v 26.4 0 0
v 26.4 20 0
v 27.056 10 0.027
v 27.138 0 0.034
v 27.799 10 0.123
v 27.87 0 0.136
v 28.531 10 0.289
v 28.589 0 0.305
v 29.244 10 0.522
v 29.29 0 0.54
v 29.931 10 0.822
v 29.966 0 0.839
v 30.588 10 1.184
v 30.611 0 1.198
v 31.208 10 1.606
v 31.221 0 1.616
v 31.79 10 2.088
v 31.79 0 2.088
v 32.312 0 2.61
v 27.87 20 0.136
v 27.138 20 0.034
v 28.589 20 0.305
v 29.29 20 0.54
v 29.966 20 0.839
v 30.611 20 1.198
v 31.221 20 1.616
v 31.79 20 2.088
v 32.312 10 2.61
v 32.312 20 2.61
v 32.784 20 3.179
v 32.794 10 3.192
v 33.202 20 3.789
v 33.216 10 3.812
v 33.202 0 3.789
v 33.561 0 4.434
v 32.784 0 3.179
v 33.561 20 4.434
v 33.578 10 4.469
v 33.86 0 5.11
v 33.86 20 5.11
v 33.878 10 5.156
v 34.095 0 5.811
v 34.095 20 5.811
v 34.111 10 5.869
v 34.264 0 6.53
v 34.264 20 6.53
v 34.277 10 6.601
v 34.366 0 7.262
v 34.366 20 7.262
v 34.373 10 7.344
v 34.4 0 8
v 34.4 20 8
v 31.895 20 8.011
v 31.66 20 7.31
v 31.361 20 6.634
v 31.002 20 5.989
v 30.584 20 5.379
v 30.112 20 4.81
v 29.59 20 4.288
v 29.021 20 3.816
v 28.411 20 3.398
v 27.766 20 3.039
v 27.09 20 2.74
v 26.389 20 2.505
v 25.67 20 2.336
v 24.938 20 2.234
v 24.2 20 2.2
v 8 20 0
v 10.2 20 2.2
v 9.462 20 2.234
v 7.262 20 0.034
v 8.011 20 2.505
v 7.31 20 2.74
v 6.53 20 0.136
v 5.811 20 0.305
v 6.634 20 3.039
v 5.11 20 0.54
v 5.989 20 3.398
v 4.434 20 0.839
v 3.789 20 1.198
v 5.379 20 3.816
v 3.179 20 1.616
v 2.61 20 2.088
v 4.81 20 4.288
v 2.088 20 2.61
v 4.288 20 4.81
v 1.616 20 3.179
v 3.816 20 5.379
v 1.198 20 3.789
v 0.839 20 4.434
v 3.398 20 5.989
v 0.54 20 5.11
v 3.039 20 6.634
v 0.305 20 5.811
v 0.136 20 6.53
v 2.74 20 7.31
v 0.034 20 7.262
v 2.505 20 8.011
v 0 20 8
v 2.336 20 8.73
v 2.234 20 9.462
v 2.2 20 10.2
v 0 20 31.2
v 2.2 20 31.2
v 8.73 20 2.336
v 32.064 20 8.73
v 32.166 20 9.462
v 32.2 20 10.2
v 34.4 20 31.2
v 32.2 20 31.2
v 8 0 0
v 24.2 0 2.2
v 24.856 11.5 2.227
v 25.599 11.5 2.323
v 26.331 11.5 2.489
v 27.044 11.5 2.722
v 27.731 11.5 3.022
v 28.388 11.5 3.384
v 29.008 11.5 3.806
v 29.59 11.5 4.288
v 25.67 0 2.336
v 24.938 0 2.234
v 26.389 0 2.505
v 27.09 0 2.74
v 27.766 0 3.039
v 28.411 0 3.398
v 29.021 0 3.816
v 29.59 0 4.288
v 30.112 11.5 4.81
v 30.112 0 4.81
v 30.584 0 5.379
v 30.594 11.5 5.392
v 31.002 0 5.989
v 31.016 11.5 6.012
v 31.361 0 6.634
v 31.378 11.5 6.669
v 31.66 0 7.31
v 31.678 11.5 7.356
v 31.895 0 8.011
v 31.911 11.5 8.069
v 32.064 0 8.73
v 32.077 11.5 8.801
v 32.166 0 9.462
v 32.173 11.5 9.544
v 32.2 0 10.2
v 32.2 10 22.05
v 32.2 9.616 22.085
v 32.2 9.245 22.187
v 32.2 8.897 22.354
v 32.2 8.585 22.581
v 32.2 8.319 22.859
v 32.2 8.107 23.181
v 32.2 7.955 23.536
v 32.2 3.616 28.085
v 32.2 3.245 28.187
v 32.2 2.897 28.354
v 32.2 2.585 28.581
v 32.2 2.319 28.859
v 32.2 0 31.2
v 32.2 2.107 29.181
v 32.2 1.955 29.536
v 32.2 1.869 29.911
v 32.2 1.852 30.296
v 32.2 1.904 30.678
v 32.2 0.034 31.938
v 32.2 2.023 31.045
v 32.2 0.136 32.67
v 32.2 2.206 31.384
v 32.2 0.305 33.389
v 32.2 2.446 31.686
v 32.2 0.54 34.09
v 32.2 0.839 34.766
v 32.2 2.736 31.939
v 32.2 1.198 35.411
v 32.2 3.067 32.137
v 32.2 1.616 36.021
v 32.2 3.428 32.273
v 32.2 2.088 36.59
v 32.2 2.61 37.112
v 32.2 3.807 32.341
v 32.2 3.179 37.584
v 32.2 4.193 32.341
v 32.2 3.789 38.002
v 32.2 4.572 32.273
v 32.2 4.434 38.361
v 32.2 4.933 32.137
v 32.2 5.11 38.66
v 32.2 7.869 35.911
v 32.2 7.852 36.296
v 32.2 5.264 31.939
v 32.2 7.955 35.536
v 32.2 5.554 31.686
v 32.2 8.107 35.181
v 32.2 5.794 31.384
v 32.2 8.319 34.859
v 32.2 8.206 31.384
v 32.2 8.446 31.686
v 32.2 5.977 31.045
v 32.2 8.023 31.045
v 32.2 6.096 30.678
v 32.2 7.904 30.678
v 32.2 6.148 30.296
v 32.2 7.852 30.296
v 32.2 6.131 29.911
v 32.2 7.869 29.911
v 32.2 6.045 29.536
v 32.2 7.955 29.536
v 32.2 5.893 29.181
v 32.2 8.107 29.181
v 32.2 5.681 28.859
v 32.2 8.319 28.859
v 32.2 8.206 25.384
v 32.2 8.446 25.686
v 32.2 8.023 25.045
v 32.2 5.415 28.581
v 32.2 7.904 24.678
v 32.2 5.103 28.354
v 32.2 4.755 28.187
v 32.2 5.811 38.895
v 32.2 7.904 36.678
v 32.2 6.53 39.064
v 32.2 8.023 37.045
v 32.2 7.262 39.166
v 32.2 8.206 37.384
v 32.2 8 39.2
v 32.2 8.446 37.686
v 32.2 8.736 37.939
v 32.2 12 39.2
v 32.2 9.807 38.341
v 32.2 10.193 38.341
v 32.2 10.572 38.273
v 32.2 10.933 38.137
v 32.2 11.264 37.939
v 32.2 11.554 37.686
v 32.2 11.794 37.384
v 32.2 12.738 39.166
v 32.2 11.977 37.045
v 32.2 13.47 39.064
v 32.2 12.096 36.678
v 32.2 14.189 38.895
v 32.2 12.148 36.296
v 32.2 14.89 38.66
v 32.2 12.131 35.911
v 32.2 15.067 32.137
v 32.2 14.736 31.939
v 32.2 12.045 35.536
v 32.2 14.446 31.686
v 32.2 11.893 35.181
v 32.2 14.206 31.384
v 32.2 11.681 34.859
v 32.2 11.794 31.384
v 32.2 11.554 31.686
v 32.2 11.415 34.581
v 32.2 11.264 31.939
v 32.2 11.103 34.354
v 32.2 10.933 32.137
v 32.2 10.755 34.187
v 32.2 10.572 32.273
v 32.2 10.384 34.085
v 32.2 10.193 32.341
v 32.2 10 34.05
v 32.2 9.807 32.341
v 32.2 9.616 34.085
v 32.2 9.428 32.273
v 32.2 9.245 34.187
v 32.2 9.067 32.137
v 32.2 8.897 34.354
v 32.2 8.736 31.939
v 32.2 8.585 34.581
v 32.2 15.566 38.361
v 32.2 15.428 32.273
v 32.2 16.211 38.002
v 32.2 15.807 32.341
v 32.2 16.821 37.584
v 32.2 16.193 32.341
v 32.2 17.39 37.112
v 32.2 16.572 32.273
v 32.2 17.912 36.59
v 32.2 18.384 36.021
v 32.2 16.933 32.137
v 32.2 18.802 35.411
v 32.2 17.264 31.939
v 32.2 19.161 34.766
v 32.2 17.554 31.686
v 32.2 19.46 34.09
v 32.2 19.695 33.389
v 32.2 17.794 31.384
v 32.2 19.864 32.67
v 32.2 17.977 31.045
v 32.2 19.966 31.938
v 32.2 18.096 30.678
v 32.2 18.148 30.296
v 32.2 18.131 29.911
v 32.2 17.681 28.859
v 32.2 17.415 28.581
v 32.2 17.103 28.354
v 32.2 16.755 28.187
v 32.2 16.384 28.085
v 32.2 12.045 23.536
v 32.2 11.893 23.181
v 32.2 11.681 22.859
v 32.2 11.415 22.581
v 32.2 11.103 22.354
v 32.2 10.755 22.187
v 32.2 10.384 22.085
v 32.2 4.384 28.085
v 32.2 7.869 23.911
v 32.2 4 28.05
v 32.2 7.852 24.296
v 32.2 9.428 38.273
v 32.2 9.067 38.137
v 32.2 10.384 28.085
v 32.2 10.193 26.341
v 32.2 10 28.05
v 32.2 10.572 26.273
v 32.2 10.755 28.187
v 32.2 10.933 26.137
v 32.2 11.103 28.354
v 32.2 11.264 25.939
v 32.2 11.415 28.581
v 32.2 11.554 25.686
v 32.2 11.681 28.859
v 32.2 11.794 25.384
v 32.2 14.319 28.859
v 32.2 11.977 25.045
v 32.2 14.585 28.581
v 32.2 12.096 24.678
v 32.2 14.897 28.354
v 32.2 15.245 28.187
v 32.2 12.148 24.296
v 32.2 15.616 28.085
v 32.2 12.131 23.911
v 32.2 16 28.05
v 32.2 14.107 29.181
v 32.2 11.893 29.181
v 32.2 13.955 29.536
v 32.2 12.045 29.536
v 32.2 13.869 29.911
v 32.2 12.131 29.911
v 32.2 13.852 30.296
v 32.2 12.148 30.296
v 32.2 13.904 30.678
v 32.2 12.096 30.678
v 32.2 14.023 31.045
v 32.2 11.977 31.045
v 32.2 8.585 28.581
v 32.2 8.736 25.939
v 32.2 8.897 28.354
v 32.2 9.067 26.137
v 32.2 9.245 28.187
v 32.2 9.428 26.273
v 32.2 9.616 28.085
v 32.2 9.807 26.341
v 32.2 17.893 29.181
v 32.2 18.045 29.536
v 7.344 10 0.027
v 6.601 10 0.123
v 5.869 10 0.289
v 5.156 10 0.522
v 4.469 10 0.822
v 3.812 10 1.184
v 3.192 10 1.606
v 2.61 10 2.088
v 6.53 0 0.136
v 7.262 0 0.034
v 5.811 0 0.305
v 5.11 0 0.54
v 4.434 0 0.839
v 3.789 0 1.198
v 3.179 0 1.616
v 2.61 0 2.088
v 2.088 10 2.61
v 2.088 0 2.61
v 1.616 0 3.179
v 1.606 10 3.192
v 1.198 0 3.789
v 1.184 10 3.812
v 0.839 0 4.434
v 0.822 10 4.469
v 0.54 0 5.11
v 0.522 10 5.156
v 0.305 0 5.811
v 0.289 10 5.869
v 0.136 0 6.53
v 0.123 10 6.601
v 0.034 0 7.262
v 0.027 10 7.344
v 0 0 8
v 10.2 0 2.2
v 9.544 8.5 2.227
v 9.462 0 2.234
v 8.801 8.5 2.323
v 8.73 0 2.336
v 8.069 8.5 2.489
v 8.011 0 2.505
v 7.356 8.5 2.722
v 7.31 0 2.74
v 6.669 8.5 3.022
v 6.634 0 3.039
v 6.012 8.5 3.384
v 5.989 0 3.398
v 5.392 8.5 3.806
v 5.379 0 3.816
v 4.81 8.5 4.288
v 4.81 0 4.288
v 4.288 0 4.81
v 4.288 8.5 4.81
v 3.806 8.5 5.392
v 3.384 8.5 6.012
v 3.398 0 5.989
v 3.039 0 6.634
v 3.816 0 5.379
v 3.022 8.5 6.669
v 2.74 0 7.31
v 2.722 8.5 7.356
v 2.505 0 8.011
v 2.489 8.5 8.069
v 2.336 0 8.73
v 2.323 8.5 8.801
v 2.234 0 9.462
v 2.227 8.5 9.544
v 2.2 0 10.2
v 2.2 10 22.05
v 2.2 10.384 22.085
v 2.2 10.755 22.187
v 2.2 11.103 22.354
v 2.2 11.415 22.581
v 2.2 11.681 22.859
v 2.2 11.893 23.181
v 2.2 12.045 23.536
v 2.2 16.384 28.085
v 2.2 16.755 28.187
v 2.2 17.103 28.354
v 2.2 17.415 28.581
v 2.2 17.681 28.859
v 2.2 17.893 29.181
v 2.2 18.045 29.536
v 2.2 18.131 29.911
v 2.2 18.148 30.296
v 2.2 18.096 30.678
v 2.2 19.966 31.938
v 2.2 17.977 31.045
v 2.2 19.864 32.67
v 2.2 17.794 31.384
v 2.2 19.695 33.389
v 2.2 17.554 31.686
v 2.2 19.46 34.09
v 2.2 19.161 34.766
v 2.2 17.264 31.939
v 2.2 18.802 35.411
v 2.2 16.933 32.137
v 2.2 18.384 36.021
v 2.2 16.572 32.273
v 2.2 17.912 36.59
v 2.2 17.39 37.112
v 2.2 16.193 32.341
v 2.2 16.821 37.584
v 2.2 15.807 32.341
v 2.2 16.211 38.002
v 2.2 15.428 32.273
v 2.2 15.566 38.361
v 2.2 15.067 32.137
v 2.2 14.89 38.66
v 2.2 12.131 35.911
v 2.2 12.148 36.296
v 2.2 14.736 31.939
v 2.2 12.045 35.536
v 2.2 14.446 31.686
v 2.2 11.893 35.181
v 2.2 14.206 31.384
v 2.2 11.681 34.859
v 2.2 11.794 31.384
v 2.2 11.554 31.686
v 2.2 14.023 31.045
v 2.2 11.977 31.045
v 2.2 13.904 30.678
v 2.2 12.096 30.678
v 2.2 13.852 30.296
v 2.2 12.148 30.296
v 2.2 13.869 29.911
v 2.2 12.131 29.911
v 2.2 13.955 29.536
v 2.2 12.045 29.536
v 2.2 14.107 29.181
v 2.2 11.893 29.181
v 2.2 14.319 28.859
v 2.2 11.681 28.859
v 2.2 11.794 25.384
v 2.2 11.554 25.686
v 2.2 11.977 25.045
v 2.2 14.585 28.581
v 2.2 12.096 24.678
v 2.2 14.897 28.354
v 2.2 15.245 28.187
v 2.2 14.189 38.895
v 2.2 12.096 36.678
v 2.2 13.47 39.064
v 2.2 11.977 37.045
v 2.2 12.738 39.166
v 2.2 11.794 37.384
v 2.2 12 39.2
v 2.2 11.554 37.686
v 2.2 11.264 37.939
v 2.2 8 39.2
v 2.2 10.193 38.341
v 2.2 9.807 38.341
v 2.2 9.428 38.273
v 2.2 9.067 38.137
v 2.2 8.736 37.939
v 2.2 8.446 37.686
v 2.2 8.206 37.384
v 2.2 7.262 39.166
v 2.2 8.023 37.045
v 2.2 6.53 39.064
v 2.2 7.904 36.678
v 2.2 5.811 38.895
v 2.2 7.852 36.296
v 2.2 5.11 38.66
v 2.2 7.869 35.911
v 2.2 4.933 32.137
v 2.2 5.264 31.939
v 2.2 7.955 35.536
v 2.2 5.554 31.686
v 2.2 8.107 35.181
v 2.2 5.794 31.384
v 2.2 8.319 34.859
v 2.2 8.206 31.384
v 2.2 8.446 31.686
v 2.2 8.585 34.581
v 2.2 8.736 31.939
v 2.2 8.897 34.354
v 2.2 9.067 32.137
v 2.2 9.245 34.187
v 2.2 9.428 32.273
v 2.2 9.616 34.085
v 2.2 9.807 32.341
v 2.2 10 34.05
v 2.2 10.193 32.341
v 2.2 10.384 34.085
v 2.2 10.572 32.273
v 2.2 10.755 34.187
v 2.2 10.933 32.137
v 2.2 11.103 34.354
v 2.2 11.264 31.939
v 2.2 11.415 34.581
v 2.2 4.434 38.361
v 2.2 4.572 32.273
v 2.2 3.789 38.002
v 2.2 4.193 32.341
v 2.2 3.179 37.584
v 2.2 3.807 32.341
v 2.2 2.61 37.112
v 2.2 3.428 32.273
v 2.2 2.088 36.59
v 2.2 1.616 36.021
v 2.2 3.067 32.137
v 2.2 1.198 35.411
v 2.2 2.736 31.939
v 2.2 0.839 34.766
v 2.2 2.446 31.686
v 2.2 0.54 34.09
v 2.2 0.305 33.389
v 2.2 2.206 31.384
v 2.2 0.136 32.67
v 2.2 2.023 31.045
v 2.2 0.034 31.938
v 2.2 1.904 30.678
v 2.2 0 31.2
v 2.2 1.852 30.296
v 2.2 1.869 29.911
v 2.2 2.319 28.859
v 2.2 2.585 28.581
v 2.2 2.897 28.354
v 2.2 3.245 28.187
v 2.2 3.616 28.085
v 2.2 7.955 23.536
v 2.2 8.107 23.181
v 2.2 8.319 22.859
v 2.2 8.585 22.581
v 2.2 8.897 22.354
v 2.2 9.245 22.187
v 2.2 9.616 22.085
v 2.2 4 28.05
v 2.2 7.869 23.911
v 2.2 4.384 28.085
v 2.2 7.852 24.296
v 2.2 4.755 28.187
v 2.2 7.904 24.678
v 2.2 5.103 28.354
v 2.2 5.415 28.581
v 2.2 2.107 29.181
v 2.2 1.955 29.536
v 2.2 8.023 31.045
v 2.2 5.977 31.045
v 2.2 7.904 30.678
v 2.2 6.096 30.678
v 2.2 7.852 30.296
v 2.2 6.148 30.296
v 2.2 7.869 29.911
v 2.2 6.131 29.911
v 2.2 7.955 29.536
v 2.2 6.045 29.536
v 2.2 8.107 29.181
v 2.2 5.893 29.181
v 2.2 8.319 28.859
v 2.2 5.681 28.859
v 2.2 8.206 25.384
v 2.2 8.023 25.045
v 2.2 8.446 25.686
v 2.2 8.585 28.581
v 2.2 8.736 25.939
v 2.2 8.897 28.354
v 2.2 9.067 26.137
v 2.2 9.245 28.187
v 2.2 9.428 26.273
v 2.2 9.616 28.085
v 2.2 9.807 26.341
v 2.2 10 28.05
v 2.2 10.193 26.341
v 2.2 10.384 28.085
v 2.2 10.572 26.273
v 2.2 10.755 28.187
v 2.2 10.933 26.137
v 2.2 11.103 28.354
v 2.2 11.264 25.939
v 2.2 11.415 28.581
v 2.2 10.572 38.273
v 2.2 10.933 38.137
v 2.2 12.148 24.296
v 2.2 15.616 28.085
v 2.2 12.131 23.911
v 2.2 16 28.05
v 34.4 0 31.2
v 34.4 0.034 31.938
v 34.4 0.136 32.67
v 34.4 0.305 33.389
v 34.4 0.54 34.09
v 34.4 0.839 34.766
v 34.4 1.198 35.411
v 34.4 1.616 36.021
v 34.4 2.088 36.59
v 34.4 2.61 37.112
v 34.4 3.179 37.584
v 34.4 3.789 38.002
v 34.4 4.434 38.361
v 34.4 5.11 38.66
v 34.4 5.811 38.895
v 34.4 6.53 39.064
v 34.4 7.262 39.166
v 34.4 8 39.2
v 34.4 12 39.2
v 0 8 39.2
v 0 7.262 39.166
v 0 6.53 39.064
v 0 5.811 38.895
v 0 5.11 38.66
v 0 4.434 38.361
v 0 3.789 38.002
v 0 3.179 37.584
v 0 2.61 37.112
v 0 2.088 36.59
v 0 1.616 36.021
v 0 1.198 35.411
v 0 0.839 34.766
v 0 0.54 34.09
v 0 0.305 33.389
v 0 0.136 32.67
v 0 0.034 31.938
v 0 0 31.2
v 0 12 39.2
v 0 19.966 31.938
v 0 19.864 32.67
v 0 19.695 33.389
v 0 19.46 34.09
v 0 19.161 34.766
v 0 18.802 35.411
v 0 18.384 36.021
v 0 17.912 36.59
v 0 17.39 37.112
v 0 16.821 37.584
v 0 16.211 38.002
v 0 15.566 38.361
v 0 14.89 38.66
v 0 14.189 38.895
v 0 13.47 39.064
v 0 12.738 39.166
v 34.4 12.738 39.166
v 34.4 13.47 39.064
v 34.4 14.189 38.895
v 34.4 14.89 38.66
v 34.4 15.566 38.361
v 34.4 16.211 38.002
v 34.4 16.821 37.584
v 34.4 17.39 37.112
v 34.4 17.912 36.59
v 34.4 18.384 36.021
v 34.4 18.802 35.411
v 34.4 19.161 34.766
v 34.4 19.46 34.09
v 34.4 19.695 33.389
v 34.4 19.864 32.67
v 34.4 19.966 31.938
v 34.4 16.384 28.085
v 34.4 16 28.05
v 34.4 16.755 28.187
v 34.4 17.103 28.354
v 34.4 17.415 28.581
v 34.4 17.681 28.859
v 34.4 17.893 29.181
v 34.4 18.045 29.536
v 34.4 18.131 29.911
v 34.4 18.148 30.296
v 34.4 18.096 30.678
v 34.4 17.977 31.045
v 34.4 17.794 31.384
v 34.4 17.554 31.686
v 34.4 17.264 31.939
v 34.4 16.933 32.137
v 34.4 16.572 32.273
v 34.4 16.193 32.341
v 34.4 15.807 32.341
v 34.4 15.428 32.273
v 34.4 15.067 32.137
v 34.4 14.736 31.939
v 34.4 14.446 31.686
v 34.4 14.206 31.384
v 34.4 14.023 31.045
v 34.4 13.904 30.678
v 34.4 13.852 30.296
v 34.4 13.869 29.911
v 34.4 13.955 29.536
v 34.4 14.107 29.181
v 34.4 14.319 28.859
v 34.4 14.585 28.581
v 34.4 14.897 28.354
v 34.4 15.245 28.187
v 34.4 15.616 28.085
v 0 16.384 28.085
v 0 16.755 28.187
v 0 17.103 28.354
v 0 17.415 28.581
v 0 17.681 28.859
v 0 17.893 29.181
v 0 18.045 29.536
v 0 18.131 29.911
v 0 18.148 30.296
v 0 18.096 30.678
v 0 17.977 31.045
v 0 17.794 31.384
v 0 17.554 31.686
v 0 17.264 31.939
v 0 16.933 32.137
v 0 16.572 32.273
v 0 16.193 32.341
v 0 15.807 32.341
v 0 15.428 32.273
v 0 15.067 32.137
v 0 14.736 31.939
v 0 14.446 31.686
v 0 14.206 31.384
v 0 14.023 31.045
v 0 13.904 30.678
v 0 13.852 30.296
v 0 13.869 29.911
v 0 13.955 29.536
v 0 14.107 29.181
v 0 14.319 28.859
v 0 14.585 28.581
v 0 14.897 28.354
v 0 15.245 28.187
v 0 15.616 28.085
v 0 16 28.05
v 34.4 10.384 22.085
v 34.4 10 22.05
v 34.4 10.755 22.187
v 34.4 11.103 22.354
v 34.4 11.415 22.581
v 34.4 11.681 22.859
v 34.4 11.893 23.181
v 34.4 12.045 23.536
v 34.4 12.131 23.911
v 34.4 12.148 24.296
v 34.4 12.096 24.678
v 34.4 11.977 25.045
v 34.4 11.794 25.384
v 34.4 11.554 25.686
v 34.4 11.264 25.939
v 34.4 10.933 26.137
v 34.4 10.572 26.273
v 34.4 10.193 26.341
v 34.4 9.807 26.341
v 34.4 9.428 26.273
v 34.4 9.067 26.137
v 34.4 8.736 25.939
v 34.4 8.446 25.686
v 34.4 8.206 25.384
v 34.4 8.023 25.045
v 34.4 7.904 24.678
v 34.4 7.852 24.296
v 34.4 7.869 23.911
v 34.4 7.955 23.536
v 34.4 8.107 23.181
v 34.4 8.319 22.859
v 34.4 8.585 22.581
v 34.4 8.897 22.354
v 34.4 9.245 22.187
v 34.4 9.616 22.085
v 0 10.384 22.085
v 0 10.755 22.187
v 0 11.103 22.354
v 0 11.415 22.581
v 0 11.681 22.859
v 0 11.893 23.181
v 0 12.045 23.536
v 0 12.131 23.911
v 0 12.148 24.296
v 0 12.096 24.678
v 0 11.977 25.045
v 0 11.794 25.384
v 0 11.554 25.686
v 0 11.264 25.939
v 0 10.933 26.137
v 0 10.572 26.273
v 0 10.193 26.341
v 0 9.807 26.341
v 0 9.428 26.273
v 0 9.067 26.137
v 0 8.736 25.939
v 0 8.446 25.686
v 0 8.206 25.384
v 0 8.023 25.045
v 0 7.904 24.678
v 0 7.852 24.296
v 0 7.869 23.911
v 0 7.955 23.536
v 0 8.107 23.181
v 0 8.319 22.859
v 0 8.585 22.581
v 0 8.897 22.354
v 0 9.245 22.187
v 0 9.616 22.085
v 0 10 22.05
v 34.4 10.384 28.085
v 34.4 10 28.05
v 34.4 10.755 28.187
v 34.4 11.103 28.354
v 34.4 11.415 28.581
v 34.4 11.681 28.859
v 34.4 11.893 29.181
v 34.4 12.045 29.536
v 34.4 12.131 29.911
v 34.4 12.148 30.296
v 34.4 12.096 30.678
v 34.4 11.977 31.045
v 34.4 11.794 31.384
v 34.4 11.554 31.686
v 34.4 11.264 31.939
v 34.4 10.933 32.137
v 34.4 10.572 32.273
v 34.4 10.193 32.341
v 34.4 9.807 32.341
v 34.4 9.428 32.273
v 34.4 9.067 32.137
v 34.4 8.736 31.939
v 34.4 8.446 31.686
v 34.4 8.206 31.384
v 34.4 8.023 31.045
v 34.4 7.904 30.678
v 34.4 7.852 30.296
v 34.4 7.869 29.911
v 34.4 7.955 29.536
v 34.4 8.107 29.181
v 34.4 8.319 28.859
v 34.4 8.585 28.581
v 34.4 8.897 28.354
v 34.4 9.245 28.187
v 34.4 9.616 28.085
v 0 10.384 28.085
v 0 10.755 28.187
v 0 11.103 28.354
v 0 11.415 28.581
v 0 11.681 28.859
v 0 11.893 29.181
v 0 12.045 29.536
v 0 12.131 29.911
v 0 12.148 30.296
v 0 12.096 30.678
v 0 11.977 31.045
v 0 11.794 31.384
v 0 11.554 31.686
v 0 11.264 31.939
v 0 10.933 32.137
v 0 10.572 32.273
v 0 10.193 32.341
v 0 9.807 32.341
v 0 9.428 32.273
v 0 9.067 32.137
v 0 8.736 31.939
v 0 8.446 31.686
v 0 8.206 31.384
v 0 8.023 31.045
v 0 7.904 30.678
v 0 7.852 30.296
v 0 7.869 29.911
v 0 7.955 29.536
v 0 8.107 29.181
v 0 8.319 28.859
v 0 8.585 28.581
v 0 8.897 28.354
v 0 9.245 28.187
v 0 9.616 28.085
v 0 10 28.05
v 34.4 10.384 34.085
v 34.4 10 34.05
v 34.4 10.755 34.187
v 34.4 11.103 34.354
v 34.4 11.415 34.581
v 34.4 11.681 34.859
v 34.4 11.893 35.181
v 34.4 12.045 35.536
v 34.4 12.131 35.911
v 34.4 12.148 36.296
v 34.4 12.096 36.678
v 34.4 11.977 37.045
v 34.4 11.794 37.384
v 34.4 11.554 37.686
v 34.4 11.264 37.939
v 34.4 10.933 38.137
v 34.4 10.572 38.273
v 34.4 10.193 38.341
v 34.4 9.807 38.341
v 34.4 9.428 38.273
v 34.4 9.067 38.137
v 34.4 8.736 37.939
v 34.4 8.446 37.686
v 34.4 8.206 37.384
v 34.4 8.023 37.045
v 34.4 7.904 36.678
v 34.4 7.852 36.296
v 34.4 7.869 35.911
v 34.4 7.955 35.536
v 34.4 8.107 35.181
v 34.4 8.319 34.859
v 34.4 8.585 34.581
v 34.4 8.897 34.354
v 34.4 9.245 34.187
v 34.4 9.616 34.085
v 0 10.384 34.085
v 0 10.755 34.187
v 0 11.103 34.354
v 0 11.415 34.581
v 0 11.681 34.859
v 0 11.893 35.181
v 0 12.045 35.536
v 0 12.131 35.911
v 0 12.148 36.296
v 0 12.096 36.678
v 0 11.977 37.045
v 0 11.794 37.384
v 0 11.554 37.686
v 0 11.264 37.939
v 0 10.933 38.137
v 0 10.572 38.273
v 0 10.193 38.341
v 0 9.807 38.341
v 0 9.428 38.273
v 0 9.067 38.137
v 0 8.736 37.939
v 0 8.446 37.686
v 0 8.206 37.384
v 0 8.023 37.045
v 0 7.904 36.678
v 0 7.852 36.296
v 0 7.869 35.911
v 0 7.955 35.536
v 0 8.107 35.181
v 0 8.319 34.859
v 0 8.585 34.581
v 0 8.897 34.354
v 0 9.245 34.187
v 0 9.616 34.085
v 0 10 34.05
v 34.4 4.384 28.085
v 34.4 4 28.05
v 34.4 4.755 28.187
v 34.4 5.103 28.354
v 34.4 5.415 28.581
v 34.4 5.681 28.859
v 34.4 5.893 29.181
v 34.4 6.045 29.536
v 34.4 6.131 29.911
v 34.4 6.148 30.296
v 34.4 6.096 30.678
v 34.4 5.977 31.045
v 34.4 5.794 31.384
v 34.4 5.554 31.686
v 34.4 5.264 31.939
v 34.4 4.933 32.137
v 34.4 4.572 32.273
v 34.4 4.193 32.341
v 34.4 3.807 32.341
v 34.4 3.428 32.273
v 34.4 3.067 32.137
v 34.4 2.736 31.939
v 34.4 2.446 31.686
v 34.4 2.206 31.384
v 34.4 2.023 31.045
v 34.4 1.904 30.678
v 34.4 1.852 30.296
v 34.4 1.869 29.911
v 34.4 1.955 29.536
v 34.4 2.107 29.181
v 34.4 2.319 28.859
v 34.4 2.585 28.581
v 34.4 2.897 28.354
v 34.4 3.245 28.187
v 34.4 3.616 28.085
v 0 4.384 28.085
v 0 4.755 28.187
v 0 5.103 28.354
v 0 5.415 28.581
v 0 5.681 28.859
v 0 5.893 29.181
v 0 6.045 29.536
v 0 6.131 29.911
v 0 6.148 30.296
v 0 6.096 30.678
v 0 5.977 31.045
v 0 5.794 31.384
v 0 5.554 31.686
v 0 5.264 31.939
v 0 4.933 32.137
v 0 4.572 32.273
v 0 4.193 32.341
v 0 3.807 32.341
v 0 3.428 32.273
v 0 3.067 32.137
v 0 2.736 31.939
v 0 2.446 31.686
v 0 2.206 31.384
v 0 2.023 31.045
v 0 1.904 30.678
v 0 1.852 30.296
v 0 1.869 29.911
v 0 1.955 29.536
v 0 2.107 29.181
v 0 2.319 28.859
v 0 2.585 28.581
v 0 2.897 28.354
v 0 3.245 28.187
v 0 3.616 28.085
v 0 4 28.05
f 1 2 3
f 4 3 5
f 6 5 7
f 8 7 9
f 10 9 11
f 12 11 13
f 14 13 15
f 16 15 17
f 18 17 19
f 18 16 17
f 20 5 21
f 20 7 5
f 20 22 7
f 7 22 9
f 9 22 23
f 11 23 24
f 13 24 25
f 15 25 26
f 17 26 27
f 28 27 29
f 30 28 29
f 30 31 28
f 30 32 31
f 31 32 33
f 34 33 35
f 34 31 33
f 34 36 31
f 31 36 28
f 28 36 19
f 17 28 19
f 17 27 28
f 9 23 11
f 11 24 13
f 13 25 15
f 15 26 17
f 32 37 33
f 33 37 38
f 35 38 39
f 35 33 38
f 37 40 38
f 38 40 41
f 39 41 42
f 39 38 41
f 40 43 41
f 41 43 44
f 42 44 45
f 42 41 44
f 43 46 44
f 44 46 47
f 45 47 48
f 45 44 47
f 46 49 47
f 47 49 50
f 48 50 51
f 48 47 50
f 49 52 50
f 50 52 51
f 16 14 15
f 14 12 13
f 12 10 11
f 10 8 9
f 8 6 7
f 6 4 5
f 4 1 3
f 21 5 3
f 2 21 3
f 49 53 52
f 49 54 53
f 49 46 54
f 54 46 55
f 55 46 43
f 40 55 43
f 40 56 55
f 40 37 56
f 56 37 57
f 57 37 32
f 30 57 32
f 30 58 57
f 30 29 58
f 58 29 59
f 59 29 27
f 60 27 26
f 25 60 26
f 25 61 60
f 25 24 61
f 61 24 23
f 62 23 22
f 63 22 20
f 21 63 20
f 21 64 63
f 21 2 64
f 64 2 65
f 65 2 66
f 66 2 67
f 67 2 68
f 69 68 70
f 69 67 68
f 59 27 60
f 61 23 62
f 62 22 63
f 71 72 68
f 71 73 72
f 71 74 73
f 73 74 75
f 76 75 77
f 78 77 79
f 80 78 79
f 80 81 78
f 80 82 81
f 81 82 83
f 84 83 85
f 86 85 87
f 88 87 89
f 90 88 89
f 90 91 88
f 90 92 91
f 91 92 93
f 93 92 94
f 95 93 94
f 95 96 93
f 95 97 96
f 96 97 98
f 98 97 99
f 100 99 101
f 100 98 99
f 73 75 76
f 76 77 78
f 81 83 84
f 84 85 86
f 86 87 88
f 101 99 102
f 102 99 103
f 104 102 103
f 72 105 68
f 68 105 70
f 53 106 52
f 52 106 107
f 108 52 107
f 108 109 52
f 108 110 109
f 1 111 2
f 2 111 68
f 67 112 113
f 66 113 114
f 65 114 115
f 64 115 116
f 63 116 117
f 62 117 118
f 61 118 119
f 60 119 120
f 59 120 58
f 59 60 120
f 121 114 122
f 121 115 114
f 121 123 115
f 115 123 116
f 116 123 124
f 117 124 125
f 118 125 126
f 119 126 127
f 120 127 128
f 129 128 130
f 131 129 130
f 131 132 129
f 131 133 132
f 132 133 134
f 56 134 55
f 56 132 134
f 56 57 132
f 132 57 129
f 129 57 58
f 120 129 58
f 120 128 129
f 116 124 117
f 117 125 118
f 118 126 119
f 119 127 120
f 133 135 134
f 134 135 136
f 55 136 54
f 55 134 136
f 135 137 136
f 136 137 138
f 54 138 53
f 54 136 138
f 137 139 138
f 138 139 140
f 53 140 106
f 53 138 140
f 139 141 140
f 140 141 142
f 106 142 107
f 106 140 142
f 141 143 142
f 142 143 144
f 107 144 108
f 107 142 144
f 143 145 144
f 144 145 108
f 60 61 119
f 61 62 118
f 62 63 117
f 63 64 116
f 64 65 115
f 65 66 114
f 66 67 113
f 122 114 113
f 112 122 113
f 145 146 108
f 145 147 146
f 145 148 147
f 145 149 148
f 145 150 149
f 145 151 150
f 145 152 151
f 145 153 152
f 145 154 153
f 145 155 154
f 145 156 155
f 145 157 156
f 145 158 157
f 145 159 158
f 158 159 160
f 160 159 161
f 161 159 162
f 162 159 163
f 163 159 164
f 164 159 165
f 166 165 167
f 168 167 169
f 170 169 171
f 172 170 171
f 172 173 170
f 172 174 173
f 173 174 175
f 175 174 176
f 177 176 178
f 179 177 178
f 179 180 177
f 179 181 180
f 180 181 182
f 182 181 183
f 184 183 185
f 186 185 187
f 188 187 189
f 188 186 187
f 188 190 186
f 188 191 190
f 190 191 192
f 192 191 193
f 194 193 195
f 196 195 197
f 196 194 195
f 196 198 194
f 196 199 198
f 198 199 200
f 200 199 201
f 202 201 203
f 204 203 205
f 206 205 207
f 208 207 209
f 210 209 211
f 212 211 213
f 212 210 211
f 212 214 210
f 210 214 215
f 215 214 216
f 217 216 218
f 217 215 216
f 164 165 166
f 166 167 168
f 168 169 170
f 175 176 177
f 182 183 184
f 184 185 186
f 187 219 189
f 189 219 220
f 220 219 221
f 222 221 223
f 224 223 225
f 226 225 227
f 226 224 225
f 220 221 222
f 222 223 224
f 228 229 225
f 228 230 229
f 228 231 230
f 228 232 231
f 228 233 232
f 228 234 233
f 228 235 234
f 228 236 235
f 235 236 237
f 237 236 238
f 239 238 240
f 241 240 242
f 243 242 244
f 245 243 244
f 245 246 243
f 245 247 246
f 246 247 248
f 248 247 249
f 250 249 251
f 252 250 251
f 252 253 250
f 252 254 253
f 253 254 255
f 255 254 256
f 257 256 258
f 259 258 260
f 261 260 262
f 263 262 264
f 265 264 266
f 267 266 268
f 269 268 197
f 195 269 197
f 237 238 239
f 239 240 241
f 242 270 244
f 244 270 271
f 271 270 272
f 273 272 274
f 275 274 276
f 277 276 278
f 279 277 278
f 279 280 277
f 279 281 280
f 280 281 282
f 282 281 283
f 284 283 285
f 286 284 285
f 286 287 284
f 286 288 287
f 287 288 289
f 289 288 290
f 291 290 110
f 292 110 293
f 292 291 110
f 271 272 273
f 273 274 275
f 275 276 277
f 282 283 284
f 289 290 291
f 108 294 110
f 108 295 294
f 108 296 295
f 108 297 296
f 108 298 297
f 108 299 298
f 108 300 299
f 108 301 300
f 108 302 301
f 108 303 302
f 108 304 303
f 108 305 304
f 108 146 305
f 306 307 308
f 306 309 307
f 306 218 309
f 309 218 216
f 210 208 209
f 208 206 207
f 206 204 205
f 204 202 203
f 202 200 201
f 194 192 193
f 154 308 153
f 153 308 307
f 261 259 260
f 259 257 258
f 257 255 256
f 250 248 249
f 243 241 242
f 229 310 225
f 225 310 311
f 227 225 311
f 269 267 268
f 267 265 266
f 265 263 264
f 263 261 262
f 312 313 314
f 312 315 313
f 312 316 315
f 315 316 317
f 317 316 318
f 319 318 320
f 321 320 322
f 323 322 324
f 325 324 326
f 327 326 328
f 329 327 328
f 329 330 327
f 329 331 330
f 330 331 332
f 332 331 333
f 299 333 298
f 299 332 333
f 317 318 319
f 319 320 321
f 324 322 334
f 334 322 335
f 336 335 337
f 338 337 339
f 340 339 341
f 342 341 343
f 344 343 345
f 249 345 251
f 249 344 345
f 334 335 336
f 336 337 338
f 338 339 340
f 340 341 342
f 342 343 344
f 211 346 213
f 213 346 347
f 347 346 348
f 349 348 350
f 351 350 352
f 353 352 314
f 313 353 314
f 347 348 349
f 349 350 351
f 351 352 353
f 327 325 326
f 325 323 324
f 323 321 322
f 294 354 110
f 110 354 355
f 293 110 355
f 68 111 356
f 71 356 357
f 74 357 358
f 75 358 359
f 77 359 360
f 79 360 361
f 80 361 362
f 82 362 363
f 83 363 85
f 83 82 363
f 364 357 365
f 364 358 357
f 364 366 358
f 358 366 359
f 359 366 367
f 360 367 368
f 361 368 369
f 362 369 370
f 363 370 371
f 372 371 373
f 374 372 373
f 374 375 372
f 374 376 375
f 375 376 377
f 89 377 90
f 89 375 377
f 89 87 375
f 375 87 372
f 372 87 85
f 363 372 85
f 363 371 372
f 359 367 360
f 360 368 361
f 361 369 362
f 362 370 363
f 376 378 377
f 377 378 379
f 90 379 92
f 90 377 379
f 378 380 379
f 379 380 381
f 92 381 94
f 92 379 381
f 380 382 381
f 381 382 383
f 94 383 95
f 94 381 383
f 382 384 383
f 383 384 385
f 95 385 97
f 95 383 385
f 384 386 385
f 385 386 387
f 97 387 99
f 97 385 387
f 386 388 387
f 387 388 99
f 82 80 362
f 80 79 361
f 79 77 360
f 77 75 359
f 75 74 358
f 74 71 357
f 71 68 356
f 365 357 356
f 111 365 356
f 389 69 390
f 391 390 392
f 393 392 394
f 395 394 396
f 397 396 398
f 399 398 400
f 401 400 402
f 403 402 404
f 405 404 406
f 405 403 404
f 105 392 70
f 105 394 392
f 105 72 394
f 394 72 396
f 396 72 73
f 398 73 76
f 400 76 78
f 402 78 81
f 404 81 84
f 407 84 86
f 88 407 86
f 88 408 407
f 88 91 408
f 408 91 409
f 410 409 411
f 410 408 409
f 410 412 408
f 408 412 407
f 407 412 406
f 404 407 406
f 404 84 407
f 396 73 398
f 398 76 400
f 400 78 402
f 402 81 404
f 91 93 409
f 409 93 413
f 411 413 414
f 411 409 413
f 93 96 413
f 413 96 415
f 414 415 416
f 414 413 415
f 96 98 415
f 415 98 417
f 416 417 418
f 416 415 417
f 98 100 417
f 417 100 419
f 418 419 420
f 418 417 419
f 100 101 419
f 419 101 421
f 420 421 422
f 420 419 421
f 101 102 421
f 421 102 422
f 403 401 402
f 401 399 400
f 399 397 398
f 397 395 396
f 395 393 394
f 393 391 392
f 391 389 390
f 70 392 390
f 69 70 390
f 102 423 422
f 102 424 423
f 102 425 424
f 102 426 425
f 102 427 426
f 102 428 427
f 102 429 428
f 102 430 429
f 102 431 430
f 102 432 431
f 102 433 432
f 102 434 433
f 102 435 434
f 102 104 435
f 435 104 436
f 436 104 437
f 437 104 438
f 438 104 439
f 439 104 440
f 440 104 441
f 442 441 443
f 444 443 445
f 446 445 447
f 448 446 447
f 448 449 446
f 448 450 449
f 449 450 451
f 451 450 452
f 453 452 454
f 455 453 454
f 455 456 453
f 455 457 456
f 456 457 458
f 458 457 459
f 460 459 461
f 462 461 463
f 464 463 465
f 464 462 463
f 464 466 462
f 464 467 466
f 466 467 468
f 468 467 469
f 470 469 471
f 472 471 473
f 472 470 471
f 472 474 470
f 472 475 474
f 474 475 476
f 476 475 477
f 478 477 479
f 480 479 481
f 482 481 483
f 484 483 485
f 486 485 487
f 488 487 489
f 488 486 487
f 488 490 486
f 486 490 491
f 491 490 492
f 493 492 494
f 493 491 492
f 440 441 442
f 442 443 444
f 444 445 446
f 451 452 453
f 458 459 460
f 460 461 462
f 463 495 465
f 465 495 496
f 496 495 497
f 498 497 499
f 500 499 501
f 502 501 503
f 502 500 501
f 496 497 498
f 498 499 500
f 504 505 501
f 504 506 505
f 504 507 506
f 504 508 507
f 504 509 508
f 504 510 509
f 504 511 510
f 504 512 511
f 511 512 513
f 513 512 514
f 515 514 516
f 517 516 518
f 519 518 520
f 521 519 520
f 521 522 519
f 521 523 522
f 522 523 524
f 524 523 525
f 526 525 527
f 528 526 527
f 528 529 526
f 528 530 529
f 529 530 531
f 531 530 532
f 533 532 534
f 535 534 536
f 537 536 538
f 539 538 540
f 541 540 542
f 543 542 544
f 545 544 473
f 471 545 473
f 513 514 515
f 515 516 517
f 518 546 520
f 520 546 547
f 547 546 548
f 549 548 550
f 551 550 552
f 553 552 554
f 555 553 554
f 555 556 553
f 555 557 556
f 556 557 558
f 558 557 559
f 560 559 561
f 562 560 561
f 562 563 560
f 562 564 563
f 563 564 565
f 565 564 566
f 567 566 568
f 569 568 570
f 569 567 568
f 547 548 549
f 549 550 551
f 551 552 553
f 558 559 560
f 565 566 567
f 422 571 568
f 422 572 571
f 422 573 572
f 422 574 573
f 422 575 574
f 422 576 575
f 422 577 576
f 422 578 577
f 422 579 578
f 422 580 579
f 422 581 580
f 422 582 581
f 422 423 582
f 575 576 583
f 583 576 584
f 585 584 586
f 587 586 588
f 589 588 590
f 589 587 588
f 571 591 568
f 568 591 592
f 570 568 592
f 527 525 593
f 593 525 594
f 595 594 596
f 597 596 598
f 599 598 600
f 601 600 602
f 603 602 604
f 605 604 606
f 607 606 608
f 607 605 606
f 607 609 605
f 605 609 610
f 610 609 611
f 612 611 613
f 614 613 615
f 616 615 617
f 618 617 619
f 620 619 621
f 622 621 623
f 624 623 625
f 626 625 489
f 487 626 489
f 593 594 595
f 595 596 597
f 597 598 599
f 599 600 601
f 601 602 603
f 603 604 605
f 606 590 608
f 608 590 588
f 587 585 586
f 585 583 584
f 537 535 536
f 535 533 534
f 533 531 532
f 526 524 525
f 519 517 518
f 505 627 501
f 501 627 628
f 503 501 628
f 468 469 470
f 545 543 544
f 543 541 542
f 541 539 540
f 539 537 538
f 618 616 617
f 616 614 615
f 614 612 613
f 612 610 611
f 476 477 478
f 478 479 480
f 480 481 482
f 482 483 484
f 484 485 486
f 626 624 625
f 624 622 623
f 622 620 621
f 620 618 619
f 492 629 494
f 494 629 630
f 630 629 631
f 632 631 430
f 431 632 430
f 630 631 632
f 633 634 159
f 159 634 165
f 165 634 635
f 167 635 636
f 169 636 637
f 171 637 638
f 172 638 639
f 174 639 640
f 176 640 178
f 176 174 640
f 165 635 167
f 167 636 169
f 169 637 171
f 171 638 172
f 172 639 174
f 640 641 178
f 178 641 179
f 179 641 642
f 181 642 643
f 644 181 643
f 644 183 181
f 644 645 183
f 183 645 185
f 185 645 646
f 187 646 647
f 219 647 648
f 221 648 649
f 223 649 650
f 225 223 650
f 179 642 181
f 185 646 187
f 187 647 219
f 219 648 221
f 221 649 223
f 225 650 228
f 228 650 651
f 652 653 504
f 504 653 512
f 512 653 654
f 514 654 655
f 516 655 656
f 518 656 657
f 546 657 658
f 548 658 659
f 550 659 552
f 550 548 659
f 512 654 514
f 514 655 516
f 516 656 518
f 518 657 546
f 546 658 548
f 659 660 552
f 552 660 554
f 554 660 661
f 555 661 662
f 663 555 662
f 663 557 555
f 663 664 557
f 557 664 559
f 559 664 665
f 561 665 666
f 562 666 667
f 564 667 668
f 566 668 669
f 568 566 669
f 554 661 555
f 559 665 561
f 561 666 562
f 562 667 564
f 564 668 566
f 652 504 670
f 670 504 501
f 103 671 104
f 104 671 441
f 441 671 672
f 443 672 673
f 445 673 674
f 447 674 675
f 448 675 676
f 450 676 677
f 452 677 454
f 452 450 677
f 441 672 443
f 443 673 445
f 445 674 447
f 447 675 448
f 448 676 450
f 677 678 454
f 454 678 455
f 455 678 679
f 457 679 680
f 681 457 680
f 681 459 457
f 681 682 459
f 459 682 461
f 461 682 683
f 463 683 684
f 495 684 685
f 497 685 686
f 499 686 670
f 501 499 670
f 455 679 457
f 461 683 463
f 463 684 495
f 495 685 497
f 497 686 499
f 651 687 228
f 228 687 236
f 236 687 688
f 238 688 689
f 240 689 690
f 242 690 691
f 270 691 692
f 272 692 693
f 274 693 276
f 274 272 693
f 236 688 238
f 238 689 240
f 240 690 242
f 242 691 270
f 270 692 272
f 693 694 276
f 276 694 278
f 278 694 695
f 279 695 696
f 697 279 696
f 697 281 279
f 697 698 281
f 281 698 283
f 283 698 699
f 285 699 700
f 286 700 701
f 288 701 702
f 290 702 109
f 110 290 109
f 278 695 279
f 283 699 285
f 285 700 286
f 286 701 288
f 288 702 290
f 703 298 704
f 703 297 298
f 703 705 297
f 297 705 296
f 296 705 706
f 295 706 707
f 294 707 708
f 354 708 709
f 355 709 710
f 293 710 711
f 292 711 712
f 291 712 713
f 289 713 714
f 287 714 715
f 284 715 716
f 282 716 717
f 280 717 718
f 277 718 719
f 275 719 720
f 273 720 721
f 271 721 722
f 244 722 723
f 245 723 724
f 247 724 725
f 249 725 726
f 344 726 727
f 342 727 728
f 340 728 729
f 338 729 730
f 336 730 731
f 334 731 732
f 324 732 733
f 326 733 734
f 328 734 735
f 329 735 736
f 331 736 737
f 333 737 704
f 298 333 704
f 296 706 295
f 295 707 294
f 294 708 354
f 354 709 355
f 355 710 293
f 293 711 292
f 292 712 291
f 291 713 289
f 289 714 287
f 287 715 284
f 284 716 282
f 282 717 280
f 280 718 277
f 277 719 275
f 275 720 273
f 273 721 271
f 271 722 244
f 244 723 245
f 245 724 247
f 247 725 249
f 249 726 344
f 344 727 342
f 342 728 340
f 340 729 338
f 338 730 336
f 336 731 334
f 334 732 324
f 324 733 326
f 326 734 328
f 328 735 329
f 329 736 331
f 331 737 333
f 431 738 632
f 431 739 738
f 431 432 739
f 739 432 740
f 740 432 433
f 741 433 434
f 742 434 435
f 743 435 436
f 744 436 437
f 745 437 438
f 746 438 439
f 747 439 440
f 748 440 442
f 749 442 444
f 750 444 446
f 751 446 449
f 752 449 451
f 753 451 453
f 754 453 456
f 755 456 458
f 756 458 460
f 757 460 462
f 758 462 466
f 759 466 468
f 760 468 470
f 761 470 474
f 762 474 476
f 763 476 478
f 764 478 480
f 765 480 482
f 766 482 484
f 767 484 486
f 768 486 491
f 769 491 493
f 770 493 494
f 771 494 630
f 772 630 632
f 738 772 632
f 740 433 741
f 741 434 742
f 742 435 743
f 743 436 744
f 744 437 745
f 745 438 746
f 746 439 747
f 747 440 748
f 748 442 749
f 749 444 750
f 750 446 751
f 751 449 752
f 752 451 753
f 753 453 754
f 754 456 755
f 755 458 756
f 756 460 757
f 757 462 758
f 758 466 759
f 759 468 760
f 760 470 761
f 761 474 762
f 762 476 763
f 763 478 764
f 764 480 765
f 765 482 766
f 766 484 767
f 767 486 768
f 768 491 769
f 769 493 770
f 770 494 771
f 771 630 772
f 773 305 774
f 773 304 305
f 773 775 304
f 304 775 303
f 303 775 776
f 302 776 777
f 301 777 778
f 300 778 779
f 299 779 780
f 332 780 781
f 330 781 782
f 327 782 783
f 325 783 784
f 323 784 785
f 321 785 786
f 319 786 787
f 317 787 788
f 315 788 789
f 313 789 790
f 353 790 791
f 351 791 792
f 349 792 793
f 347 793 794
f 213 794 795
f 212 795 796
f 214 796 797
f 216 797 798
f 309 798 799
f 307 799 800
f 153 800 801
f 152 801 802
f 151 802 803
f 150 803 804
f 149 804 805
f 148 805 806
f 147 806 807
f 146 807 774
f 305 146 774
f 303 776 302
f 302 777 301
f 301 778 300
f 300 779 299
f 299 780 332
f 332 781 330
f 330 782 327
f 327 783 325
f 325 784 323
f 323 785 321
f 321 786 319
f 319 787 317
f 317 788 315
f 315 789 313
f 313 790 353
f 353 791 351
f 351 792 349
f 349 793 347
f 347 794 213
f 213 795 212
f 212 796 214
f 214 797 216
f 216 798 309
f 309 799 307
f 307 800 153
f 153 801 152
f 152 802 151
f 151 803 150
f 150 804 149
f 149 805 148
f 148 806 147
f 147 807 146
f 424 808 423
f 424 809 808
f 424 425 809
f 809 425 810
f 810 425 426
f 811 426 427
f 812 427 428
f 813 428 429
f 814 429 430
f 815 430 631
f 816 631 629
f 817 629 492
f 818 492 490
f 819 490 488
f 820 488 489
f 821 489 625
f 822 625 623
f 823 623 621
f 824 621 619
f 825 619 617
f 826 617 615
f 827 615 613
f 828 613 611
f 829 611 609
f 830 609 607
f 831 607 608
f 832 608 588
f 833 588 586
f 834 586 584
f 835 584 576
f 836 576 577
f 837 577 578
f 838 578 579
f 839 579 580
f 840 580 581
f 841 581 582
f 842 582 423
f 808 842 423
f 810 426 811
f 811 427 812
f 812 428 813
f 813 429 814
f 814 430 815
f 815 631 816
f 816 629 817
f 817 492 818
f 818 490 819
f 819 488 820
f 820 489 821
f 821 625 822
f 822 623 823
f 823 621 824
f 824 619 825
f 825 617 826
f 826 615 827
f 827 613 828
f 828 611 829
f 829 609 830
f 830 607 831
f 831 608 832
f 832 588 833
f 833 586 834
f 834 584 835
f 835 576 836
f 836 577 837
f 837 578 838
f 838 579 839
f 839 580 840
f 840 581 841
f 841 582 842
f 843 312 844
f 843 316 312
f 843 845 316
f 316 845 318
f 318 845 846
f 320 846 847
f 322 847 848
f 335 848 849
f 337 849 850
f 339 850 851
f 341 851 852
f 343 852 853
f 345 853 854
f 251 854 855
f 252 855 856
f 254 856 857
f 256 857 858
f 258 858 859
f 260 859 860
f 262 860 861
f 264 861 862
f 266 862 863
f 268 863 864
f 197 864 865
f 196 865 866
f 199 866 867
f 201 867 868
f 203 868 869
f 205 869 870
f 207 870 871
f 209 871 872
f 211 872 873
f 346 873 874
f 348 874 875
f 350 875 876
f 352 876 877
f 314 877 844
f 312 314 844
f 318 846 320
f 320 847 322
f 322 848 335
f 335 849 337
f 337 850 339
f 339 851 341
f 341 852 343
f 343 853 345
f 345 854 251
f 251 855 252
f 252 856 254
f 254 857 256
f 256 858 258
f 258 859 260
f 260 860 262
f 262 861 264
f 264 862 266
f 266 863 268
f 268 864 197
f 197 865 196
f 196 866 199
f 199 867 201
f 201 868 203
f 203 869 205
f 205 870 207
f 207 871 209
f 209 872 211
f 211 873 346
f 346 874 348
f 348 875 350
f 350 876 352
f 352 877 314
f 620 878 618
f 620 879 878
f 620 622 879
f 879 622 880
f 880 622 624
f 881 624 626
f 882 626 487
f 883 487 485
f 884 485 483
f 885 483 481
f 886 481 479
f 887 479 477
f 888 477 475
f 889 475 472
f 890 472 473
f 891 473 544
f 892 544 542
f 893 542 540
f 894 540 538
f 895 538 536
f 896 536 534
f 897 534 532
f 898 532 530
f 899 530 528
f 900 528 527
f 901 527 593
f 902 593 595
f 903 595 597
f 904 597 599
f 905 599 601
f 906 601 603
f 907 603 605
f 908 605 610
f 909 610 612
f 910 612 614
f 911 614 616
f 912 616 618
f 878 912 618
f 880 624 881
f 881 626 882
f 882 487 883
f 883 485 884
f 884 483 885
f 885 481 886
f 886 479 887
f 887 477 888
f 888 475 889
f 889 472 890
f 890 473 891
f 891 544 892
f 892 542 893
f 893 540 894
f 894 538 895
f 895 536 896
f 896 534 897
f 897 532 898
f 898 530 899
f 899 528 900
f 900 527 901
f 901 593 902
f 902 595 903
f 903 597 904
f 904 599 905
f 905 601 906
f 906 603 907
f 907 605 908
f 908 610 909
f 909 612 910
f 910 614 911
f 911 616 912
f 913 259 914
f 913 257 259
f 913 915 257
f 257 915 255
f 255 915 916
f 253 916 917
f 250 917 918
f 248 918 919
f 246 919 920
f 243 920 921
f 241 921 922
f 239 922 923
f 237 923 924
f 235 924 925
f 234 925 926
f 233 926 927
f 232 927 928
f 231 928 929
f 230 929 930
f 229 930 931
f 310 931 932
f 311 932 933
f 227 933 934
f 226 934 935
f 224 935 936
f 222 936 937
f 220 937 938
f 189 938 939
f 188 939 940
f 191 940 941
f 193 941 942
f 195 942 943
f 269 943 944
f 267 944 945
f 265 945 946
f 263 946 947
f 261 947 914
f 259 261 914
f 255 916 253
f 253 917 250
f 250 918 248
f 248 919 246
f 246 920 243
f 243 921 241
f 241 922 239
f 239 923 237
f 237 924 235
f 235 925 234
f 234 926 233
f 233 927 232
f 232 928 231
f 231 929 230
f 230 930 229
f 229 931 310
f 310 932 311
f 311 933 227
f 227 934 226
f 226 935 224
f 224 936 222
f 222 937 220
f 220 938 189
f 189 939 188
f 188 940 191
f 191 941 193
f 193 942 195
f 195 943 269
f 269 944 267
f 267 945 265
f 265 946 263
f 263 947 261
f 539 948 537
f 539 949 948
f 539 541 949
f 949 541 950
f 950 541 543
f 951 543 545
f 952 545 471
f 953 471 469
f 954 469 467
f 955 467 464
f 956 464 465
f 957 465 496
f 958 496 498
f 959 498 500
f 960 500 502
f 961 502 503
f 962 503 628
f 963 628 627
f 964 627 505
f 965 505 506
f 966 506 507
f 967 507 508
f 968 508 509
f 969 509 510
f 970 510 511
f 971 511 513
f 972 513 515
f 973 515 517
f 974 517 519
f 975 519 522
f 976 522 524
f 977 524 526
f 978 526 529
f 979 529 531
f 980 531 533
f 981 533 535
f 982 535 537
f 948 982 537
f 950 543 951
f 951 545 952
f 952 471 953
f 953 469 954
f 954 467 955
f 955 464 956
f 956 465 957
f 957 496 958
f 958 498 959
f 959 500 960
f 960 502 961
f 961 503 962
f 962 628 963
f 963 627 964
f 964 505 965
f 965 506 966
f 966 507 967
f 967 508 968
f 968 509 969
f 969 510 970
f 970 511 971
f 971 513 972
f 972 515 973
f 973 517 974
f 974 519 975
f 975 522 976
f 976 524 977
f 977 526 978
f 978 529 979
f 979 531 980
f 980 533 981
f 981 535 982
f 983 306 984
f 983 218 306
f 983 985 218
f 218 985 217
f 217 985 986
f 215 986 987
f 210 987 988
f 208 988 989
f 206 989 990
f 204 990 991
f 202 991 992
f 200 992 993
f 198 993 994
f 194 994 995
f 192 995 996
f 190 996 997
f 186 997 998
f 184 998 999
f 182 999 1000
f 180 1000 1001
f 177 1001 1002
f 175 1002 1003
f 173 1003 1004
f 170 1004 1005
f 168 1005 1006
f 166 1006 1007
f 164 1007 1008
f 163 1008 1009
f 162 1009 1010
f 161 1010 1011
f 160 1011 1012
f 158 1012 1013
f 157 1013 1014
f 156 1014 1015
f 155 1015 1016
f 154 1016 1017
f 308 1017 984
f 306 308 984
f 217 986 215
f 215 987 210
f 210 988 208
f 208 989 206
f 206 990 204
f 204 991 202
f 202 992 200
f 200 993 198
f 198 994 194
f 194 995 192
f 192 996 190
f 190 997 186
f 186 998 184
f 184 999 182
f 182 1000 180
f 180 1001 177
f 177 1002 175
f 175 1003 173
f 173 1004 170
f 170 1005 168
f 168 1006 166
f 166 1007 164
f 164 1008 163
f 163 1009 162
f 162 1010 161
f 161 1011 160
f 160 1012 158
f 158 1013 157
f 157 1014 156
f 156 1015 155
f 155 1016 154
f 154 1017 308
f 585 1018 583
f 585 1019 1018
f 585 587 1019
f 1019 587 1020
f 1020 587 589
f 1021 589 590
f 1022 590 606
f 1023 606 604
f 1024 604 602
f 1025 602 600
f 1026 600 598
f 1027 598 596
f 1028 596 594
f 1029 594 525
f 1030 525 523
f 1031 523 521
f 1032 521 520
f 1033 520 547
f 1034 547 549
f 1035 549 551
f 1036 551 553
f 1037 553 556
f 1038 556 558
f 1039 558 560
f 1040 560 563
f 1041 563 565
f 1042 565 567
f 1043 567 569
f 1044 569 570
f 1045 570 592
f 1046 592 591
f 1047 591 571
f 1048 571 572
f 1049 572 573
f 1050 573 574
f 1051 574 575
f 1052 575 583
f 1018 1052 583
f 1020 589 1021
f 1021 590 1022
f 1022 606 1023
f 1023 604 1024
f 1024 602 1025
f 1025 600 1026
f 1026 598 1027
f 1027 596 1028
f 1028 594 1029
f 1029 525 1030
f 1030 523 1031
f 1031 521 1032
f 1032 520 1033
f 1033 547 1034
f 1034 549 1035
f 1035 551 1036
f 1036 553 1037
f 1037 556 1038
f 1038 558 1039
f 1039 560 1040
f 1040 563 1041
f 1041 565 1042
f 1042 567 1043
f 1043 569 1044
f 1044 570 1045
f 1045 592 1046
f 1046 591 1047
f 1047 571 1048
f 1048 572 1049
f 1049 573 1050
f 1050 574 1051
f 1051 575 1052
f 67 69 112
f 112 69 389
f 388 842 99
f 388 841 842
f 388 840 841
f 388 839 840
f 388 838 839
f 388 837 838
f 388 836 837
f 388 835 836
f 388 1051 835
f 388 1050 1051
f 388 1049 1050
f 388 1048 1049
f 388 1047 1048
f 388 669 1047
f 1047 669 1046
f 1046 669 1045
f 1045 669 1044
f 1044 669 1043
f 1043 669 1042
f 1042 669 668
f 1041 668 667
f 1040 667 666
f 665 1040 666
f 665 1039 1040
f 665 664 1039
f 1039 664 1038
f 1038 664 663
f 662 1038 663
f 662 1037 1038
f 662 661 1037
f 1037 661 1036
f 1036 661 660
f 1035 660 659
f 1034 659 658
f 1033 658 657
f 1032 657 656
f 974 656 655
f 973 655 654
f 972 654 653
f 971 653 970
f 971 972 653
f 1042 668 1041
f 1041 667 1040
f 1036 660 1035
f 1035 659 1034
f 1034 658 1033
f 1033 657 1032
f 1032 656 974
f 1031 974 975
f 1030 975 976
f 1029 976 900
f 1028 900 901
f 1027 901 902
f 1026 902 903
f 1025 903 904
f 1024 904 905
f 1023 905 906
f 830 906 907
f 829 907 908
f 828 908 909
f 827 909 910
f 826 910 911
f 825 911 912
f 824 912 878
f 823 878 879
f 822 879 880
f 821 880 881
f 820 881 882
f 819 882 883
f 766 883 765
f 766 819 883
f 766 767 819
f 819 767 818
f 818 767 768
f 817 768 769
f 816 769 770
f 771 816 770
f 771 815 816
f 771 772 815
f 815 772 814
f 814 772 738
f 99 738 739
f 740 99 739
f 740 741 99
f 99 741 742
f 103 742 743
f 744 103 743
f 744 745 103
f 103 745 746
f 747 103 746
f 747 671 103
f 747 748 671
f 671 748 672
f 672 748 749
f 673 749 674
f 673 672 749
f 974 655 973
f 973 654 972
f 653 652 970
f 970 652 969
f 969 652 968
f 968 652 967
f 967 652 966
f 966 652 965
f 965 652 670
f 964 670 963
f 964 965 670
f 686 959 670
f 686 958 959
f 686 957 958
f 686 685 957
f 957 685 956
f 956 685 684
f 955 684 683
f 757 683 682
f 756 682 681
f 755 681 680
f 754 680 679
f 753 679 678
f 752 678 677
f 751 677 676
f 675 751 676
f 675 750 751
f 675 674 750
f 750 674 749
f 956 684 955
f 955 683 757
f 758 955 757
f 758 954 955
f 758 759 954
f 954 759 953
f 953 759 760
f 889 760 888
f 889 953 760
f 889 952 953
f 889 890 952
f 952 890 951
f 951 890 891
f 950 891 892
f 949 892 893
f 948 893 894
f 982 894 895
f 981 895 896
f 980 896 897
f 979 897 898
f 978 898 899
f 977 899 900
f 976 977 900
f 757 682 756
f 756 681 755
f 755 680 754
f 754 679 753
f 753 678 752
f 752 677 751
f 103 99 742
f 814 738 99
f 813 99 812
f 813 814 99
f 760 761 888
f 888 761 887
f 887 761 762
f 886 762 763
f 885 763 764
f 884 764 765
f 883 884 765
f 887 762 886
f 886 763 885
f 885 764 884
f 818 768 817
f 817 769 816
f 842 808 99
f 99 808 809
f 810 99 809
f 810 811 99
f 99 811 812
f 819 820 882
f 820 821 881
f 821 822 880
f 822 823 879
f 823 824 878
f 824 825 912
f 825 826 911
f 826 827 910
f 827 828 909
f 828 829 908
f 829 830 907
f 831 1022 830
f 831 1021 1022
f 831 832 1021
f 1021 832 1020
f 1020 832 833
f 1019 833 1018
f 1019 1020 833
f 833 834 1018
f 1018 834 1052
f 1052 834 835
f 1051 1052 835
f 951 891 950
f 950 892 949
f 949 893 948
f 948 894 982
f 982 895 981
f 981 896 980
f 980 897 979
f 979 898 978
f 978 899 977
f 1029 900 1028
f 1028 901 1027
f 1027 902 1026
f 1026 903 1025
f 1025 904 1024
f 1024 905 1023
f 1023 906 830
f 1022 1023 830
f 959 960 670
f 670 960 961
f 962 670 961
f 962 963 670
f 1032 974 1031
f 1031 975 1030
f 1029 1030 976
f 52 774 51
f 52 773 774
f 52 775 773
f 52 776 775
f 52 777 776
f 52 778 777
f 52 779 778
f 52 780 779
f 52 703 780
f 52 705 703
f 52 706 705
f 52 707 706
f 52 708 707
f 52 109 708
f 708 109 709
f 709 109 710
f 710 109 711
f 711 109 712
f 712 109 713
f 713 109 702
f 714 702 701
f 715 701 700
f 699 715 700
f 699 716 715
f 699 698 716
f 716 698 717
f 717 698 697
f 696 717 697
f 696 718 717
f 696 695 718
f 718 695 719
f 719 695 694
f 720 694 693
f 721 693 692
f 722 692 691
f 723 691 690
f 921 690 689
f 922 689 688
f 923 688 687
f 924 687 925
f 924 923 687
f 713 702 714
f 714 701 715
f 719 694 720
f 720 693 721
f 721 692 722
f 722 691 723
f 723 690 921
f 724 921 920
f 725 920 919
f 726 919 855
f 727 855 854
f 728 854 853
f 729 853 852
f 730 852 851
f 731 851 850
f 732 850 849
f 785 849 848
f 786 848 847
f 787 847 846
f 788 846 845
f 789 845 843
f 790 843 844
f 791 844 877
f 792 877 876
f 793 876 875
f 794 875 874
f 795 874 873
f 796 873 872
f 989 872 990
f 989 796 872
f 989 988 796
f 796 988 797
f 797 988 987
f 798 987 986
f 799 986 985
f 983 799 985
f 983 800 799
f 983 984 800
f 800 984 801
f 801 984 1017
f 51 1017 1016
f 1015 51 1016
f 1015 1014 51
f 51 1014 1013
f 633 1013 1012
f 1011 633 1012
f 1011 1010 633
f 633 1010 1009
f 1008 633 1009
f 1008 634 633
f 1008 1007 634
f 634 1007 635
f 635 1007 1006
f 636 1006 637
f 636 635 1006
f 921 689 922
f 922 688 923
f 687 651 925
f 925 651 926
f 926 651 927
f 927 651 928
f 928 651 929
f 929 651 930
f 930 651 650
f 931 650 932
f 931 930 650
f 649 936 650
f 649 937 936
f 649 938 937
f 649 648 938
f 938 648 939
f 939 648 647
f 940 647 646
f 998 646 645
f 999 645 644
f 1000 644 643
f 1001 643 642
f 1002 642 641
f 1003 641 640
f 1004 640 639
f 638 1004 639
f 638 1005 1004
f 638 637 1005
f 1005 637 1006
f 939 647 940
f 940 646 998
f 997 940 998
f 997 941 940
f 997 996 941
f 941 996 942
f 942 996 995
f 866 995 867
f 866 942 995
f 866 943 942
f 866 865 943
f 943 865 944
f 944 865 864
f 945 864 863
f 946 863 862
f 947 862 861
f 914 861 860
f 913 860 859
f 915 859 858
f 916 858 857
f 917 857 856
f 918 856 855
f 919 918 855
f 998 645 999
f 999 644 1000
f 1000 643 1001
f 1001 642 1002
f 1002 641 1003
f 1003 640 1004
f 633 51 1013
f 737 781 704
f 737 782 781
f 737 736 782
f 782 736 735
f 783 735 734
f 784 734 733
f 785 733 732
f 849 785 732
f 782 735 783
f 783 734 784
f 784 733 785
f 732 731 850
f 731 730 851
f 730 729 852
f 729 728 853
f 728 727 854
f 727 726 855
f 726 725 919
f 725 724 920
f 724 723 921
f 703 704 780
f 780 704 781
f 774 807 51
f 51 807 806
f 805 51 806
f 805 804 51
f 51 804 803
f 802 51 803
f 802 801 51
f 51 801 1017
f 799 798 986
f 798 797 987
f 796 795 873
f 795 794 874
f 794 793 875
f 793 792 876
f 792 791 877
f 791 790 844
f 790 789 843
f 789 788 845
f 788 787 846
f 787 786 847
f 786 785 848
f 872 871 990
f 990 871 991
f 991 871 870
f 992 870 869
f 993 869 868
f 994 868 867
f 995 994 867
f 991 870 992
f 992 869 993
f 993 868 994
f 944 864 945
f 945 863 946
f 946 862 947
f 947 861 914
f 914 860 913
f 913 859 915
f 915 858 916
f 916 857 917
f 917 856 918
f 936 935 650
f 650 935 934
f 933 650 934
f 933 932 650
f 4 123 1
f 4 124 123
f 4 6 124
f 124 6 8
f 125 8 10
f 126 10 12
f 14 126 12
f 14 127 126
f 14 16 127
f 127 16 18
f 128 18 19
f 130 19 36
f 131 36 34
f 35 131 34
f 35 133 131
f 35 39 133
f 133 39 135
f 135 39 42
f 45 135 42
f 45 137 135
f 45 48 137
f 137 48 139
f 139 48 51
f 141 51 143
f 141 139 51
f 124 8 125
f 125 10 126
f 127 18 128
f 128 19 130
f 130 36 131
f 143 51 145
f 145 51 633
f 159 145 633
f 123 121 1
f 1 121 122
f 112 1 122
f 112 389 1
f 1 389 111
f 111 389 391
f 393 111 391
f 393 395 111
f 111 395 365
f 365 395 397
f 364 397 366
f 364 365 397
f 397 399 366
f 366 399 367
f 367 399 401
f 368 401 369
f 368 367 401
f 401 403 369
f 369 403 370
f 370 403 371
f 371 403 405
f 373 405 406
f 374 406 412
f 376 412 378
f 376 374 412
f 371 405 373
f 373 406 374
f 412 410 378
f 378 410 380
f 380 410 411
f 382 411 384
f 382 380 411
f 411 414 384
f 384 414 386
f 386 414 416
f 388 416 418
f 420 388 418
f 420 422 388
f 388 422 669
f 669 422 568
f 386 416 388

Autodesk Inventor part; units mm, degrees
ref_plane "YZ Plane" through (0, 0, 0) normal (1, 0, 0) x (0, 1, 0)
ref_plane "XZ Plane" through (0, 0, 0) normal (0, 1, 0) x (-1, 0, 0)
ref_plane "XY Plane" through (0, 0, 0) normal (0, 0, 1) x (1, 0, 0)
sketch "Esquisse1" plane through (0, 0, 0) normal (0, 0, 1) x (1, 0, 0)
  line L0 (0, 0) -> (34.4, 0)
  line L1 (34.4, 0) -> (34.4, 20)
  line L2 (34.4, 20) -> (0, 20)
  line L3 (0, 20) -> (0, 0)
  dimension "d0" = 34.4
  dimension "d1" = 20
extrude "Extrusion1" add sketch "Esquisse1" along normal blind 2.2
sketch "Esquisse2" plane through (0, 0, 2.2) normal (0, 0, 1) x (1, 0, 0)
  line L0 (0, 0) -> (34.4, 0) projected
  line L1 (34.4, 20) -> (0, 20) projected
  line L2 (0, 20) -> (0, 0) projected
  line L3 (0, 20) -> (2.2, 20)
  line L4 (2.2, 20) -> (2.2, 0)
  line L5 (2.2, 0) -> (0, 0)
  line L6 (0, 0) -> (0, 20)
  line L7 (17.2, 20) -> (17.2, 0) construction
  line L8 (34.4, 20) -> (32.2, 20)
  line L9 (32.2, 20) -> (32.2, 0)
  line L10 (32.2, 0) -> (34.4, 0)
  line L11 (34.4, 0) -> (34.4, 20)
  dimension "d4" = 2.2
extrude "Extrusion2" add sketch "Esquisse2" along normal blind 37 contours L2 L1 L4 L0 | L9 L1 L11 L0
sketch "Esquisse3" plane through (34.4, 0, 0) normal (1, 0, 0) x (0, 0, -1)
  line L0 (0, 0) -> (0, 20) construction
  line L1 (-39.2, 0) -> (-39.2, 20) construction
  line L2 (-39.2, 10) -> (0, 10) construction
  circle A0 centre (-30.2, 10) radius 2.15
  line L3 (-30.2, 10) -> (-30.2, 15.2246) construction
  circle A1 centre (-24.2, 10) radius 2.15
  circle A2 centre (-36.2, 10) radius 2.15
  circle A3 centre (-30.2, 10) radius 2.15
  circle A4 centre (-30.2, 16) radius 2.15
  circle A5 centre (-30.2, 4) radius 2.15
  circle A6 centre (-30.2, 10) radius 2.15
  dimension "d7" = 9
  dimension "d8" = 4.3
  dimension "d11" = 6
  dimension "d14" = 6
  dimension "d19" = 6
  dimension "d22" = 6
extrude "Extrusion3" cut sketch "Esquisse3" against normal through all
fillet "Congé1" radius 8 4 edges at (33.3, 20, 39.2) (1.1, 20, 39.2) (1.1, 0, 39.2) (33.3, 0, 39.2)
fillet "Congé2" radius 8 4 edges at (2.2, 10, 2.2) (0, 10, 0) (34.4, 10, 0) (32.2, 10, 2.2)
equation "\"d2\" = UDepth"
equation "\"d4\" = Depth"
equation "\"d8\" = Holes"
equation "\"d28\" = URound"
equation "\"Depth\" = 2.2"
equation "\"Holes\" = 4.3"
equation "\"UDepth\" = Depth"
equation "\"USize\" = 5"
equation "\"URound\" = 8"
properties part number "BackFeet"
